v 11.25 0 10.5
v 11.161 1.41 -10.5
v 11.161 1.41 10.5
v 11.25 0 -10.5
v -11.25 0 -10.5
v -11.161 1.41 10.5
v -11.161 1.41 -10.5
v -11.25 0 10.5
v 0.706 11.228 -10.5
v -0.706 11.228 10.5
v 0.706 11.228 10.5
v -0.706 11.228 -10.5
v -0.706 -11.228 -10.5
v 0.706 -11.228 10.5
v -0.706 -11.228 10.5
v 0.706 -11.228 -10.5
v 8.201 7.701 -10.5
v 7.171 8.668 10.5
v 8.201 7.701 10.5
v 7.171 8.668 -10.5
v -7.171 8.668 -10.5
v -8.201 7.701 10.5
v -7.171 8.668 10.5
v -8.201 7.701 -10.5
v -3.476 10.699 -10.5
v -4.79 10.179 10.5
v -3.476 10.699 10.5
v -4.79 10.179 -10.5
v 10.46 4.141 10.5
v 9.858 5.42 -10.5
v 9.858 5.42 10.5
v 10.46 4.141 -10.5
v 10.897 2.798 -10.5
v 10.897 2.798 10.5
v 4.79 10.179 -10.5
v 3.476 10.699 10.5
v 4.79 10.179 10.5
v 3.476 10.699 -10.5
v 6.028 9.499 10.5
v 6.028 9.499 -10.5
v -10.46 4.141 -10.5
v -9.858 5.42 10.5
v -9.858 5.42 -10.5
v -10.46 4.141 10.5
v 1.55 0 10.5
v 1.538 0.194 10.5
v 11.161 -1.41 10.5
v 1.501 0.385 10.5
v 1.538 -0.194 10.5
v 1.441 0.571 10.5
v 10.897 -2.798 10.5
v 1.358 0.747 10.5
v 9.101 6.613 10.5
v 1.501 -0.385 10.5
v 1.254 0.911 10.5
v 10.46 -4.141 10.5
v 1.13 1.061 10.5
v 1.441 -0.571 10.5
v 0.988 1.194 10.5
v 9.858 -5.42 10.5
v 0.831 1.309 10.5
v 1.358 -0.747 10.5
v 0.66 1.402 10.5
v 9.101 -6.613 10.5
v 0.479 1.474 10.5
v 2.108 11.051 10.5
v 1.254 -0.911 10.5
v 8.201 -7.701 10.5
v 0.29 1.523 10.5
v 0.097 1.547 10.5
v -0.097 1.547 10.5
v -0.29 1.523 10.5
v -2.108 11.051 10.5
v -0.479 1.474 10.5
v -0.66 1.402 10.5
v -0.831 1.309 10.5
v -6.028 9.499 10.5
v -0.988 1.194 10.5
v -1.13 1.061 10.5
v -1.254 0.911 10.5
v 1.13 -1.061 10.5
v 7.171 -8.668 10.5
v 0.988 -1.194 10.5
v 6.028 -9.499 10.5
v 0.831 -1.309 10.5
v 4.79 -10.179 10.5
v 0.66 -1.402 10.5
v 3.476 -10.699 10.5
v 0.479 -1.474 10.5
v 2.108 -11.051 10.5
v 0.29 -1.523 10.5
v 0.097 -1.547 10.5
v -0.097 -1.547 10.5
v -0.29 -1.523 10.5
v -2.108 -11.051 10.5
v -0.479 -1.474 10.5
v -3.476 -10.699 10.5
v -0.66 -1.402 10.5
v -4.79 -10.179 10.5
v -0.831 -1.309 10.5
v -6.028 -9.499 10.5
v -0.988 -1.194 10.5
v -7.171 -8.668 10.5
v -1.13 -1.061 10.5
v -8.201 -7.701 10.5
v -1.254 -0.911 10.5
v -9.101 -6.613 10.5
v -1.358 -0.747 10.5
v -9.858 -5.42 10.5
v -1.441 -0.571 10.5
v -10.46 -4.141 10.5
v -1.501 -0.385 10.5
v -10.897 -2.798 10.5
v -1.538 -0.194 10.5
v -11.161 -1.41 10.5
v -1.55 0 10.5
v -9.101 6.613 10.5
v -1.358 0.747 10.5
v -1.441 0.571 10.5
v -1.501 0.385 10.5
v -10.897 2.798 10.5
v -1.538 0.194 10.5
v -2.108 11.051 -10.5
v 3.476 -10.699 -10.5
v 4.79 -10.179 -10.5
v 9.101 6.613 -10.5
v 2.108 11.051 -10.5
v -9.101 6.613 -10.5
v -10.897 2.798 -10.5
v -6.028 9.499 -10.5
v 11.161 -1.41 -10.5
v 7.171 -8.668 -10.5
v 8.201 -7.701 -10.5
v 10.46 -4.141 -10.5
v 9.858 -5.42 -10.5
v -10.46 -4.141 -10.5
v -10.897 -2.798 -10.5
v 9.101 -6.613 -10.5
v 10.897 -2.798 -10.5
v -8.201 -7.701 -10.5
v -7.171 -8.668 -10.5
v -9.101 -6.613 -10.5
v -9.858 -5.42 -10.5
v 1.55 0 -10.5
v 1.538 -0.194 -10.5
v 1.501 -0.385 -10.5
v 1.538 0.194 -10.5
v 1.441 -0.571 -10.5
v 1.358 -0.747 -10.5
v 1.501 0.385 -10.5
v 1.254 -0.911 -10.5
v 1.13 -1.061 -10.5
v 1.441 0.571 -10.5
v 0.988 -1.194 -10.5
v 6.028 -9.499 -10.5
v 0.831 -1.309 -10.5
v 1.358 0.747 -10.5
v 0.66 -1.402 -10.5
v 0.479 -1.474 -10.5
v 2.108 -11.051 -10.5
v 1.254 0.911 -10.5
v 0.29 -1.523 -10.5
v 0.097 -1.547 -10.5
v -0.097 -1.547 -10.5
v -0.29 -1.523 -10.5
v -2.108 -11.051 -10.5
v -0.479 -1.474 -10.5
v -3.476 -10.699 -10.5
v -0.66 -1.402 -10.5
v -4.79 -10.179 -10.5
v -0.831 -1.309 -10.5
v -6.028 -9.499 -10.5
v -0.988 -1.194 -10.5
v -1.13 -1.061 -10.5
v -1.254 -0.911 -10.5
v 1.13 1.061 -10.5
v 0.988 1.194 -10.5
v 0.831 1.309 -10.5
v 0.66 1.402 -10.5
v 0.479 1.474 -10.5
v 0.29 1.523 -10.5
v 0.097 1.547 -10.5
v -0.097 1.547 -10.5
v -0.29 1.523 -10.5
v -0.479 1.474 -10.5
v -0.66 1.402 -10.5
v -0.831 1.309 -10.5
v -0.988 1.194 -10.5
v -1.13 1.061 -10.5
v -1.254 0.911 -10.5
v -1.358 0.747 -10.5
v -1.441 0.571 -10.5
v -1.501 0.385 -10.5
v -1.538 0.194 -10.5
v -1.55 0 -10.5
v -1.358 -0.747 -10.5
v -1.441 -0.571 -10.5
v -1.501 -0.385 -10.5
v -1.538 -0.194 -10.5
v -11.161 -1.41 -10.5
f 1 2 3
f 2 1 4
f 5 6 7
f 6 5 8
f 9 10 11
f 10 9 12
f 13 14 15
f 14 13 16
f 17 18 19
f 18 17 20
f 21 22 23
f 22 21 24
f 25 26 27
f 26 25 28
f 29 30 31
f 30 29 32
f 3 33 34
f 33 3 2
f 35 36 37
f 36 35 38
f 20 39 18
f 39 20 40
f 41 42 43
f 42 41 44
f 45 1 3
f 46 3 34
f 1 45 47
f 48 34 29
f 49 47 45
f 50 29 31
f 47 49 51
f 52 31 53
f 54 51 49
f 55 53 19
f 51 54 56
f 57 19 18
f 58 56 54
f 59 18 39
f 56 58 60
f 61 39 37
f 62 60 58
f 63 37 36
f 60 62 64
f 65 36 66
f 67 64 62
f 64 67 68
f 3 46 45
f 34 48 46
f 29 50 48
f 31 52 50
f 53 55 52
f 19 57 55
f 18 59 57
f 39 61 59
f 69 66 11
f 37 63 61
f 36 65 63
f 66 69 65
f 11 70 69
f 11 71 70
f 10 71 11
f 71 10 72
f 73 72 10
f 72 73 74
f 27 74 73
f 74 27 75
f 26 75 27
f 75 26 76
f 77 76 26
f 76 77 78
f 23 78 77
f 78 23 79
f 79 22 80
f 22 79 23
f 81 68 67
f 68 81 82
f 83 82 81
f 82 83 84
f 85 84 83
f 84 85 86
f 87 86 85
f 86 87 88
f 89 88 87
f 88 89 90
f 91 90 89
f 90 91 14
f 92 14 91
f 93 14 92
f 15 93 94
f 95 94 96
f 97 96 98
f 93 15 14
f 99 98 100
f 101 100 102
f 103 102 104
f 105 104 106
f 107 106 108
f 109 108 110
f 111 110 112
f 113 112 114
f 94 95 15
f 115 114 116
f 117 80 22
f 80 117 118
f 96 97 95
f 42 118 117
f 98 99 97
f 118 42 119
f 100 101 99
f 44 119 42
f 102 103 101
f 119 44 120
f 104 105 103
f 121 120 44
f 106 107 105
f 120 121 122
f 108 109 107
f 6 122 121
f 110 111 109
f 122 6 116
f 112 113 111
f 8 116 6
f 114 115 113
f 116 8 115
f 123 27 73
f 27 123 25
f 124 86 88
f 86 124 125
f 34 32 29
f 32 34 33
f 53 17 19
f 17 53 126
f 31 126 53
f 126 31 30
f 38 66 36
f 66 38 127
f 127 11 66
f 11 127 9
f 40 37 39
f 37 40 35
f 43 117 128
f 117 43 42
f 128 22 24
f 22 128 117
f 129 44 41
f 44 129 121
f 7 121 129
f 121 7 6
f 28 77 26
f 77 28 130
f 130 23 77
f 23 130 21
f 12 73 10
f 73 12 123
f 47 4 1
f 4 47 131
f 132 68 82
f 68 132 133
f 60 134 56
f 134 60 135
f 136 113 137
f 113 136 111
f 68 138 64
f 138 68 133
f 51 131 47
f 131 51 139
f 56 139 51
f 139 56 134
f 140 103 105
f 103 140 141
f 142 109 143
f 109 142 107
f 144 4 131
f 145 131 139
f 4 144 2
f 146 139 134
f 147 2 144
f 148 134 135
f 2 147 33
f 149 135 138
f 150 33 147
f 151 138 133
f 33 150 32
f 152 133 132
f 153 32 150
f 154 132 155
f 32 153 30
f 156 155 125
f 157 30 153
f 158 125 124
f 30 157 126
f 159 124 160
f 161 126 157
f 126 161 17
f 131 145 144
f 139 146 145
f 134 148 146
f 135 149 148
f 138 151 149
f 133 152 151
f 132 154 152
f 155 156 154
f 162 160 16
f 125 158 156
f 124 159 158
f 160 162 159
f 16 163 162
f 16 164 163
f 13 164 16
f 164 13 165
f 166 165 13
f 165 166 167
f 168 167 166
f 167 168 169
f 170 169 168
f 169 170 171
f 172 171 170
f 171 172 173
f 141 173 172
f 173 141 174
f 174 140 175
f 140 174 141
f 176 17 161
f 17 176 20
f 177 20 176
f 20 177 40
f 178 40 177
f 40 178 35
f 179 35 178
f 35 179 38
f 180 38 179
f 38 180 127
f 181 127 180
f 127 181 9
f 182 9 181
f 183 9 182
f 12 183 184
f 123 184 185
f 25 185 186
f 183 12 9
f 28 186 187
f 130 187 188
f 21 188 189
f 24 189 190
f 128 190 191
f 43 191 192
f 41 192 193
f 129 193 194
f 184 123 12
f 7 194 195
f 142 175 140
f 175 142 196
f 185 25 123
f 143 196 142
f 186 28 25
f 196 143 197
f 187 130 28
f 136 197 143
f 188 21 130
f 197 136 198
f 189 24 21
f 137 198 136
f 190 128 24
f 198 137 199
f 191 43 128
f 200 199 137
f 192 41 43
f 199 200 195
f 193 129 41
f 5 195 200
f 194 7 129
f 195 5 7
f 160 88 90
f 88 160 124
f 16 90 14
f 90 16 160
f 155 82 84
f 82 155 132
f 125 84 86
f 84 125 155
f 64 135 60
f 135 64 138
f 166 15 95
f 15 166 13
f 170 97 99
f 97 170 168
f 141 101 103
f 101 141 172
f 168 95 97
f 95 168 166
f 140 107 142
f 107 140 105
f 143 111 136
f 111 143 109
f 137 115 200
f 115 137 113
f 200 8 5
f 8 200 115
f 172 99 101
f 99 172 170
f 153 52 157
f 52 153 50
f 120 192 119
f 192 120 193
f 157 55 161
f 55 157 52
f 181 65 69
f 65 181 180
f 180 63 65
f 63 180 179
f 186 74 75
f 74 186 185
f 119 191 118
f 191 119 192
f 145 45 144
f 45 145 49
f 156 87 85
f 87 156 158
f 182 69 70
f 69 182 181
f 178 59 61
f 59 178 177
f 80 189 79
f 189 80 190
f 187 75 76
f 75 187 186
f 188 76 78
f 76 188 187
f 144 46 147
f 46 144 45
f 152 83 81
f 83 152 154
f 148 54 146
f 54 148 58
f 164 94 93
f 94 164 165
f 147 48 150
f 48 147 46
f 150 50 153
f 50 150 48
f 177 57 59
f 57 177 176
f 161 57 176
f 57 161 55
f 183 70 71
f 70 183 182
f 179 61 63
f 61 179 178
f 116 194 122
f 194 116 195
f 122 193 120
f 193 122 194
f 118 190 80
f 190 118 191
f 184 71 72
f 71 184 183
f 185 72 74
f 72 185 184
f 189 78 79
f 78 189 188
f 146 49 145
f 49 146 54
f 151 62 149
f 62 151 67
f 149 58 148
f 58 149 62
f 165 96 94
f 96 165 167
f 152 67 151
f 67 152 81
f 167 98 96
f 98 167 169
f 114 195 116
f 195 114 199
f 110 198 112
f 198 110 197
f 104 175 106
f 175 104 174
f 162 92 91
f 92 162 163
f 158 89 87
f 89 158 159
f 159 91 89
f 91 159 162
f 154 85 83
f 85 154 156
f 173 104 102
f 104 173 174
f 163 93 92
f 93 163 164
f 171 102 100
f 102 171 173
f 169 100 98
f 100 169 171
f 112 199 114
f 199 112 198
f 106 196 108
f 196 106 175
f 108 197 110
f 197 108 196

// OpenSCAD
$fn = 50;


difference() {
	union() {
		translate(v = [0, 0, -10.5000000000]) {
			cylinder(h = 21, r = 11.2500000000);
		}
	}
	union() {
		translate(v = [0, 0, -100.0000000000]) {
			cylinder(h = 200, r = 1.5500000000);
		}
	}
}
